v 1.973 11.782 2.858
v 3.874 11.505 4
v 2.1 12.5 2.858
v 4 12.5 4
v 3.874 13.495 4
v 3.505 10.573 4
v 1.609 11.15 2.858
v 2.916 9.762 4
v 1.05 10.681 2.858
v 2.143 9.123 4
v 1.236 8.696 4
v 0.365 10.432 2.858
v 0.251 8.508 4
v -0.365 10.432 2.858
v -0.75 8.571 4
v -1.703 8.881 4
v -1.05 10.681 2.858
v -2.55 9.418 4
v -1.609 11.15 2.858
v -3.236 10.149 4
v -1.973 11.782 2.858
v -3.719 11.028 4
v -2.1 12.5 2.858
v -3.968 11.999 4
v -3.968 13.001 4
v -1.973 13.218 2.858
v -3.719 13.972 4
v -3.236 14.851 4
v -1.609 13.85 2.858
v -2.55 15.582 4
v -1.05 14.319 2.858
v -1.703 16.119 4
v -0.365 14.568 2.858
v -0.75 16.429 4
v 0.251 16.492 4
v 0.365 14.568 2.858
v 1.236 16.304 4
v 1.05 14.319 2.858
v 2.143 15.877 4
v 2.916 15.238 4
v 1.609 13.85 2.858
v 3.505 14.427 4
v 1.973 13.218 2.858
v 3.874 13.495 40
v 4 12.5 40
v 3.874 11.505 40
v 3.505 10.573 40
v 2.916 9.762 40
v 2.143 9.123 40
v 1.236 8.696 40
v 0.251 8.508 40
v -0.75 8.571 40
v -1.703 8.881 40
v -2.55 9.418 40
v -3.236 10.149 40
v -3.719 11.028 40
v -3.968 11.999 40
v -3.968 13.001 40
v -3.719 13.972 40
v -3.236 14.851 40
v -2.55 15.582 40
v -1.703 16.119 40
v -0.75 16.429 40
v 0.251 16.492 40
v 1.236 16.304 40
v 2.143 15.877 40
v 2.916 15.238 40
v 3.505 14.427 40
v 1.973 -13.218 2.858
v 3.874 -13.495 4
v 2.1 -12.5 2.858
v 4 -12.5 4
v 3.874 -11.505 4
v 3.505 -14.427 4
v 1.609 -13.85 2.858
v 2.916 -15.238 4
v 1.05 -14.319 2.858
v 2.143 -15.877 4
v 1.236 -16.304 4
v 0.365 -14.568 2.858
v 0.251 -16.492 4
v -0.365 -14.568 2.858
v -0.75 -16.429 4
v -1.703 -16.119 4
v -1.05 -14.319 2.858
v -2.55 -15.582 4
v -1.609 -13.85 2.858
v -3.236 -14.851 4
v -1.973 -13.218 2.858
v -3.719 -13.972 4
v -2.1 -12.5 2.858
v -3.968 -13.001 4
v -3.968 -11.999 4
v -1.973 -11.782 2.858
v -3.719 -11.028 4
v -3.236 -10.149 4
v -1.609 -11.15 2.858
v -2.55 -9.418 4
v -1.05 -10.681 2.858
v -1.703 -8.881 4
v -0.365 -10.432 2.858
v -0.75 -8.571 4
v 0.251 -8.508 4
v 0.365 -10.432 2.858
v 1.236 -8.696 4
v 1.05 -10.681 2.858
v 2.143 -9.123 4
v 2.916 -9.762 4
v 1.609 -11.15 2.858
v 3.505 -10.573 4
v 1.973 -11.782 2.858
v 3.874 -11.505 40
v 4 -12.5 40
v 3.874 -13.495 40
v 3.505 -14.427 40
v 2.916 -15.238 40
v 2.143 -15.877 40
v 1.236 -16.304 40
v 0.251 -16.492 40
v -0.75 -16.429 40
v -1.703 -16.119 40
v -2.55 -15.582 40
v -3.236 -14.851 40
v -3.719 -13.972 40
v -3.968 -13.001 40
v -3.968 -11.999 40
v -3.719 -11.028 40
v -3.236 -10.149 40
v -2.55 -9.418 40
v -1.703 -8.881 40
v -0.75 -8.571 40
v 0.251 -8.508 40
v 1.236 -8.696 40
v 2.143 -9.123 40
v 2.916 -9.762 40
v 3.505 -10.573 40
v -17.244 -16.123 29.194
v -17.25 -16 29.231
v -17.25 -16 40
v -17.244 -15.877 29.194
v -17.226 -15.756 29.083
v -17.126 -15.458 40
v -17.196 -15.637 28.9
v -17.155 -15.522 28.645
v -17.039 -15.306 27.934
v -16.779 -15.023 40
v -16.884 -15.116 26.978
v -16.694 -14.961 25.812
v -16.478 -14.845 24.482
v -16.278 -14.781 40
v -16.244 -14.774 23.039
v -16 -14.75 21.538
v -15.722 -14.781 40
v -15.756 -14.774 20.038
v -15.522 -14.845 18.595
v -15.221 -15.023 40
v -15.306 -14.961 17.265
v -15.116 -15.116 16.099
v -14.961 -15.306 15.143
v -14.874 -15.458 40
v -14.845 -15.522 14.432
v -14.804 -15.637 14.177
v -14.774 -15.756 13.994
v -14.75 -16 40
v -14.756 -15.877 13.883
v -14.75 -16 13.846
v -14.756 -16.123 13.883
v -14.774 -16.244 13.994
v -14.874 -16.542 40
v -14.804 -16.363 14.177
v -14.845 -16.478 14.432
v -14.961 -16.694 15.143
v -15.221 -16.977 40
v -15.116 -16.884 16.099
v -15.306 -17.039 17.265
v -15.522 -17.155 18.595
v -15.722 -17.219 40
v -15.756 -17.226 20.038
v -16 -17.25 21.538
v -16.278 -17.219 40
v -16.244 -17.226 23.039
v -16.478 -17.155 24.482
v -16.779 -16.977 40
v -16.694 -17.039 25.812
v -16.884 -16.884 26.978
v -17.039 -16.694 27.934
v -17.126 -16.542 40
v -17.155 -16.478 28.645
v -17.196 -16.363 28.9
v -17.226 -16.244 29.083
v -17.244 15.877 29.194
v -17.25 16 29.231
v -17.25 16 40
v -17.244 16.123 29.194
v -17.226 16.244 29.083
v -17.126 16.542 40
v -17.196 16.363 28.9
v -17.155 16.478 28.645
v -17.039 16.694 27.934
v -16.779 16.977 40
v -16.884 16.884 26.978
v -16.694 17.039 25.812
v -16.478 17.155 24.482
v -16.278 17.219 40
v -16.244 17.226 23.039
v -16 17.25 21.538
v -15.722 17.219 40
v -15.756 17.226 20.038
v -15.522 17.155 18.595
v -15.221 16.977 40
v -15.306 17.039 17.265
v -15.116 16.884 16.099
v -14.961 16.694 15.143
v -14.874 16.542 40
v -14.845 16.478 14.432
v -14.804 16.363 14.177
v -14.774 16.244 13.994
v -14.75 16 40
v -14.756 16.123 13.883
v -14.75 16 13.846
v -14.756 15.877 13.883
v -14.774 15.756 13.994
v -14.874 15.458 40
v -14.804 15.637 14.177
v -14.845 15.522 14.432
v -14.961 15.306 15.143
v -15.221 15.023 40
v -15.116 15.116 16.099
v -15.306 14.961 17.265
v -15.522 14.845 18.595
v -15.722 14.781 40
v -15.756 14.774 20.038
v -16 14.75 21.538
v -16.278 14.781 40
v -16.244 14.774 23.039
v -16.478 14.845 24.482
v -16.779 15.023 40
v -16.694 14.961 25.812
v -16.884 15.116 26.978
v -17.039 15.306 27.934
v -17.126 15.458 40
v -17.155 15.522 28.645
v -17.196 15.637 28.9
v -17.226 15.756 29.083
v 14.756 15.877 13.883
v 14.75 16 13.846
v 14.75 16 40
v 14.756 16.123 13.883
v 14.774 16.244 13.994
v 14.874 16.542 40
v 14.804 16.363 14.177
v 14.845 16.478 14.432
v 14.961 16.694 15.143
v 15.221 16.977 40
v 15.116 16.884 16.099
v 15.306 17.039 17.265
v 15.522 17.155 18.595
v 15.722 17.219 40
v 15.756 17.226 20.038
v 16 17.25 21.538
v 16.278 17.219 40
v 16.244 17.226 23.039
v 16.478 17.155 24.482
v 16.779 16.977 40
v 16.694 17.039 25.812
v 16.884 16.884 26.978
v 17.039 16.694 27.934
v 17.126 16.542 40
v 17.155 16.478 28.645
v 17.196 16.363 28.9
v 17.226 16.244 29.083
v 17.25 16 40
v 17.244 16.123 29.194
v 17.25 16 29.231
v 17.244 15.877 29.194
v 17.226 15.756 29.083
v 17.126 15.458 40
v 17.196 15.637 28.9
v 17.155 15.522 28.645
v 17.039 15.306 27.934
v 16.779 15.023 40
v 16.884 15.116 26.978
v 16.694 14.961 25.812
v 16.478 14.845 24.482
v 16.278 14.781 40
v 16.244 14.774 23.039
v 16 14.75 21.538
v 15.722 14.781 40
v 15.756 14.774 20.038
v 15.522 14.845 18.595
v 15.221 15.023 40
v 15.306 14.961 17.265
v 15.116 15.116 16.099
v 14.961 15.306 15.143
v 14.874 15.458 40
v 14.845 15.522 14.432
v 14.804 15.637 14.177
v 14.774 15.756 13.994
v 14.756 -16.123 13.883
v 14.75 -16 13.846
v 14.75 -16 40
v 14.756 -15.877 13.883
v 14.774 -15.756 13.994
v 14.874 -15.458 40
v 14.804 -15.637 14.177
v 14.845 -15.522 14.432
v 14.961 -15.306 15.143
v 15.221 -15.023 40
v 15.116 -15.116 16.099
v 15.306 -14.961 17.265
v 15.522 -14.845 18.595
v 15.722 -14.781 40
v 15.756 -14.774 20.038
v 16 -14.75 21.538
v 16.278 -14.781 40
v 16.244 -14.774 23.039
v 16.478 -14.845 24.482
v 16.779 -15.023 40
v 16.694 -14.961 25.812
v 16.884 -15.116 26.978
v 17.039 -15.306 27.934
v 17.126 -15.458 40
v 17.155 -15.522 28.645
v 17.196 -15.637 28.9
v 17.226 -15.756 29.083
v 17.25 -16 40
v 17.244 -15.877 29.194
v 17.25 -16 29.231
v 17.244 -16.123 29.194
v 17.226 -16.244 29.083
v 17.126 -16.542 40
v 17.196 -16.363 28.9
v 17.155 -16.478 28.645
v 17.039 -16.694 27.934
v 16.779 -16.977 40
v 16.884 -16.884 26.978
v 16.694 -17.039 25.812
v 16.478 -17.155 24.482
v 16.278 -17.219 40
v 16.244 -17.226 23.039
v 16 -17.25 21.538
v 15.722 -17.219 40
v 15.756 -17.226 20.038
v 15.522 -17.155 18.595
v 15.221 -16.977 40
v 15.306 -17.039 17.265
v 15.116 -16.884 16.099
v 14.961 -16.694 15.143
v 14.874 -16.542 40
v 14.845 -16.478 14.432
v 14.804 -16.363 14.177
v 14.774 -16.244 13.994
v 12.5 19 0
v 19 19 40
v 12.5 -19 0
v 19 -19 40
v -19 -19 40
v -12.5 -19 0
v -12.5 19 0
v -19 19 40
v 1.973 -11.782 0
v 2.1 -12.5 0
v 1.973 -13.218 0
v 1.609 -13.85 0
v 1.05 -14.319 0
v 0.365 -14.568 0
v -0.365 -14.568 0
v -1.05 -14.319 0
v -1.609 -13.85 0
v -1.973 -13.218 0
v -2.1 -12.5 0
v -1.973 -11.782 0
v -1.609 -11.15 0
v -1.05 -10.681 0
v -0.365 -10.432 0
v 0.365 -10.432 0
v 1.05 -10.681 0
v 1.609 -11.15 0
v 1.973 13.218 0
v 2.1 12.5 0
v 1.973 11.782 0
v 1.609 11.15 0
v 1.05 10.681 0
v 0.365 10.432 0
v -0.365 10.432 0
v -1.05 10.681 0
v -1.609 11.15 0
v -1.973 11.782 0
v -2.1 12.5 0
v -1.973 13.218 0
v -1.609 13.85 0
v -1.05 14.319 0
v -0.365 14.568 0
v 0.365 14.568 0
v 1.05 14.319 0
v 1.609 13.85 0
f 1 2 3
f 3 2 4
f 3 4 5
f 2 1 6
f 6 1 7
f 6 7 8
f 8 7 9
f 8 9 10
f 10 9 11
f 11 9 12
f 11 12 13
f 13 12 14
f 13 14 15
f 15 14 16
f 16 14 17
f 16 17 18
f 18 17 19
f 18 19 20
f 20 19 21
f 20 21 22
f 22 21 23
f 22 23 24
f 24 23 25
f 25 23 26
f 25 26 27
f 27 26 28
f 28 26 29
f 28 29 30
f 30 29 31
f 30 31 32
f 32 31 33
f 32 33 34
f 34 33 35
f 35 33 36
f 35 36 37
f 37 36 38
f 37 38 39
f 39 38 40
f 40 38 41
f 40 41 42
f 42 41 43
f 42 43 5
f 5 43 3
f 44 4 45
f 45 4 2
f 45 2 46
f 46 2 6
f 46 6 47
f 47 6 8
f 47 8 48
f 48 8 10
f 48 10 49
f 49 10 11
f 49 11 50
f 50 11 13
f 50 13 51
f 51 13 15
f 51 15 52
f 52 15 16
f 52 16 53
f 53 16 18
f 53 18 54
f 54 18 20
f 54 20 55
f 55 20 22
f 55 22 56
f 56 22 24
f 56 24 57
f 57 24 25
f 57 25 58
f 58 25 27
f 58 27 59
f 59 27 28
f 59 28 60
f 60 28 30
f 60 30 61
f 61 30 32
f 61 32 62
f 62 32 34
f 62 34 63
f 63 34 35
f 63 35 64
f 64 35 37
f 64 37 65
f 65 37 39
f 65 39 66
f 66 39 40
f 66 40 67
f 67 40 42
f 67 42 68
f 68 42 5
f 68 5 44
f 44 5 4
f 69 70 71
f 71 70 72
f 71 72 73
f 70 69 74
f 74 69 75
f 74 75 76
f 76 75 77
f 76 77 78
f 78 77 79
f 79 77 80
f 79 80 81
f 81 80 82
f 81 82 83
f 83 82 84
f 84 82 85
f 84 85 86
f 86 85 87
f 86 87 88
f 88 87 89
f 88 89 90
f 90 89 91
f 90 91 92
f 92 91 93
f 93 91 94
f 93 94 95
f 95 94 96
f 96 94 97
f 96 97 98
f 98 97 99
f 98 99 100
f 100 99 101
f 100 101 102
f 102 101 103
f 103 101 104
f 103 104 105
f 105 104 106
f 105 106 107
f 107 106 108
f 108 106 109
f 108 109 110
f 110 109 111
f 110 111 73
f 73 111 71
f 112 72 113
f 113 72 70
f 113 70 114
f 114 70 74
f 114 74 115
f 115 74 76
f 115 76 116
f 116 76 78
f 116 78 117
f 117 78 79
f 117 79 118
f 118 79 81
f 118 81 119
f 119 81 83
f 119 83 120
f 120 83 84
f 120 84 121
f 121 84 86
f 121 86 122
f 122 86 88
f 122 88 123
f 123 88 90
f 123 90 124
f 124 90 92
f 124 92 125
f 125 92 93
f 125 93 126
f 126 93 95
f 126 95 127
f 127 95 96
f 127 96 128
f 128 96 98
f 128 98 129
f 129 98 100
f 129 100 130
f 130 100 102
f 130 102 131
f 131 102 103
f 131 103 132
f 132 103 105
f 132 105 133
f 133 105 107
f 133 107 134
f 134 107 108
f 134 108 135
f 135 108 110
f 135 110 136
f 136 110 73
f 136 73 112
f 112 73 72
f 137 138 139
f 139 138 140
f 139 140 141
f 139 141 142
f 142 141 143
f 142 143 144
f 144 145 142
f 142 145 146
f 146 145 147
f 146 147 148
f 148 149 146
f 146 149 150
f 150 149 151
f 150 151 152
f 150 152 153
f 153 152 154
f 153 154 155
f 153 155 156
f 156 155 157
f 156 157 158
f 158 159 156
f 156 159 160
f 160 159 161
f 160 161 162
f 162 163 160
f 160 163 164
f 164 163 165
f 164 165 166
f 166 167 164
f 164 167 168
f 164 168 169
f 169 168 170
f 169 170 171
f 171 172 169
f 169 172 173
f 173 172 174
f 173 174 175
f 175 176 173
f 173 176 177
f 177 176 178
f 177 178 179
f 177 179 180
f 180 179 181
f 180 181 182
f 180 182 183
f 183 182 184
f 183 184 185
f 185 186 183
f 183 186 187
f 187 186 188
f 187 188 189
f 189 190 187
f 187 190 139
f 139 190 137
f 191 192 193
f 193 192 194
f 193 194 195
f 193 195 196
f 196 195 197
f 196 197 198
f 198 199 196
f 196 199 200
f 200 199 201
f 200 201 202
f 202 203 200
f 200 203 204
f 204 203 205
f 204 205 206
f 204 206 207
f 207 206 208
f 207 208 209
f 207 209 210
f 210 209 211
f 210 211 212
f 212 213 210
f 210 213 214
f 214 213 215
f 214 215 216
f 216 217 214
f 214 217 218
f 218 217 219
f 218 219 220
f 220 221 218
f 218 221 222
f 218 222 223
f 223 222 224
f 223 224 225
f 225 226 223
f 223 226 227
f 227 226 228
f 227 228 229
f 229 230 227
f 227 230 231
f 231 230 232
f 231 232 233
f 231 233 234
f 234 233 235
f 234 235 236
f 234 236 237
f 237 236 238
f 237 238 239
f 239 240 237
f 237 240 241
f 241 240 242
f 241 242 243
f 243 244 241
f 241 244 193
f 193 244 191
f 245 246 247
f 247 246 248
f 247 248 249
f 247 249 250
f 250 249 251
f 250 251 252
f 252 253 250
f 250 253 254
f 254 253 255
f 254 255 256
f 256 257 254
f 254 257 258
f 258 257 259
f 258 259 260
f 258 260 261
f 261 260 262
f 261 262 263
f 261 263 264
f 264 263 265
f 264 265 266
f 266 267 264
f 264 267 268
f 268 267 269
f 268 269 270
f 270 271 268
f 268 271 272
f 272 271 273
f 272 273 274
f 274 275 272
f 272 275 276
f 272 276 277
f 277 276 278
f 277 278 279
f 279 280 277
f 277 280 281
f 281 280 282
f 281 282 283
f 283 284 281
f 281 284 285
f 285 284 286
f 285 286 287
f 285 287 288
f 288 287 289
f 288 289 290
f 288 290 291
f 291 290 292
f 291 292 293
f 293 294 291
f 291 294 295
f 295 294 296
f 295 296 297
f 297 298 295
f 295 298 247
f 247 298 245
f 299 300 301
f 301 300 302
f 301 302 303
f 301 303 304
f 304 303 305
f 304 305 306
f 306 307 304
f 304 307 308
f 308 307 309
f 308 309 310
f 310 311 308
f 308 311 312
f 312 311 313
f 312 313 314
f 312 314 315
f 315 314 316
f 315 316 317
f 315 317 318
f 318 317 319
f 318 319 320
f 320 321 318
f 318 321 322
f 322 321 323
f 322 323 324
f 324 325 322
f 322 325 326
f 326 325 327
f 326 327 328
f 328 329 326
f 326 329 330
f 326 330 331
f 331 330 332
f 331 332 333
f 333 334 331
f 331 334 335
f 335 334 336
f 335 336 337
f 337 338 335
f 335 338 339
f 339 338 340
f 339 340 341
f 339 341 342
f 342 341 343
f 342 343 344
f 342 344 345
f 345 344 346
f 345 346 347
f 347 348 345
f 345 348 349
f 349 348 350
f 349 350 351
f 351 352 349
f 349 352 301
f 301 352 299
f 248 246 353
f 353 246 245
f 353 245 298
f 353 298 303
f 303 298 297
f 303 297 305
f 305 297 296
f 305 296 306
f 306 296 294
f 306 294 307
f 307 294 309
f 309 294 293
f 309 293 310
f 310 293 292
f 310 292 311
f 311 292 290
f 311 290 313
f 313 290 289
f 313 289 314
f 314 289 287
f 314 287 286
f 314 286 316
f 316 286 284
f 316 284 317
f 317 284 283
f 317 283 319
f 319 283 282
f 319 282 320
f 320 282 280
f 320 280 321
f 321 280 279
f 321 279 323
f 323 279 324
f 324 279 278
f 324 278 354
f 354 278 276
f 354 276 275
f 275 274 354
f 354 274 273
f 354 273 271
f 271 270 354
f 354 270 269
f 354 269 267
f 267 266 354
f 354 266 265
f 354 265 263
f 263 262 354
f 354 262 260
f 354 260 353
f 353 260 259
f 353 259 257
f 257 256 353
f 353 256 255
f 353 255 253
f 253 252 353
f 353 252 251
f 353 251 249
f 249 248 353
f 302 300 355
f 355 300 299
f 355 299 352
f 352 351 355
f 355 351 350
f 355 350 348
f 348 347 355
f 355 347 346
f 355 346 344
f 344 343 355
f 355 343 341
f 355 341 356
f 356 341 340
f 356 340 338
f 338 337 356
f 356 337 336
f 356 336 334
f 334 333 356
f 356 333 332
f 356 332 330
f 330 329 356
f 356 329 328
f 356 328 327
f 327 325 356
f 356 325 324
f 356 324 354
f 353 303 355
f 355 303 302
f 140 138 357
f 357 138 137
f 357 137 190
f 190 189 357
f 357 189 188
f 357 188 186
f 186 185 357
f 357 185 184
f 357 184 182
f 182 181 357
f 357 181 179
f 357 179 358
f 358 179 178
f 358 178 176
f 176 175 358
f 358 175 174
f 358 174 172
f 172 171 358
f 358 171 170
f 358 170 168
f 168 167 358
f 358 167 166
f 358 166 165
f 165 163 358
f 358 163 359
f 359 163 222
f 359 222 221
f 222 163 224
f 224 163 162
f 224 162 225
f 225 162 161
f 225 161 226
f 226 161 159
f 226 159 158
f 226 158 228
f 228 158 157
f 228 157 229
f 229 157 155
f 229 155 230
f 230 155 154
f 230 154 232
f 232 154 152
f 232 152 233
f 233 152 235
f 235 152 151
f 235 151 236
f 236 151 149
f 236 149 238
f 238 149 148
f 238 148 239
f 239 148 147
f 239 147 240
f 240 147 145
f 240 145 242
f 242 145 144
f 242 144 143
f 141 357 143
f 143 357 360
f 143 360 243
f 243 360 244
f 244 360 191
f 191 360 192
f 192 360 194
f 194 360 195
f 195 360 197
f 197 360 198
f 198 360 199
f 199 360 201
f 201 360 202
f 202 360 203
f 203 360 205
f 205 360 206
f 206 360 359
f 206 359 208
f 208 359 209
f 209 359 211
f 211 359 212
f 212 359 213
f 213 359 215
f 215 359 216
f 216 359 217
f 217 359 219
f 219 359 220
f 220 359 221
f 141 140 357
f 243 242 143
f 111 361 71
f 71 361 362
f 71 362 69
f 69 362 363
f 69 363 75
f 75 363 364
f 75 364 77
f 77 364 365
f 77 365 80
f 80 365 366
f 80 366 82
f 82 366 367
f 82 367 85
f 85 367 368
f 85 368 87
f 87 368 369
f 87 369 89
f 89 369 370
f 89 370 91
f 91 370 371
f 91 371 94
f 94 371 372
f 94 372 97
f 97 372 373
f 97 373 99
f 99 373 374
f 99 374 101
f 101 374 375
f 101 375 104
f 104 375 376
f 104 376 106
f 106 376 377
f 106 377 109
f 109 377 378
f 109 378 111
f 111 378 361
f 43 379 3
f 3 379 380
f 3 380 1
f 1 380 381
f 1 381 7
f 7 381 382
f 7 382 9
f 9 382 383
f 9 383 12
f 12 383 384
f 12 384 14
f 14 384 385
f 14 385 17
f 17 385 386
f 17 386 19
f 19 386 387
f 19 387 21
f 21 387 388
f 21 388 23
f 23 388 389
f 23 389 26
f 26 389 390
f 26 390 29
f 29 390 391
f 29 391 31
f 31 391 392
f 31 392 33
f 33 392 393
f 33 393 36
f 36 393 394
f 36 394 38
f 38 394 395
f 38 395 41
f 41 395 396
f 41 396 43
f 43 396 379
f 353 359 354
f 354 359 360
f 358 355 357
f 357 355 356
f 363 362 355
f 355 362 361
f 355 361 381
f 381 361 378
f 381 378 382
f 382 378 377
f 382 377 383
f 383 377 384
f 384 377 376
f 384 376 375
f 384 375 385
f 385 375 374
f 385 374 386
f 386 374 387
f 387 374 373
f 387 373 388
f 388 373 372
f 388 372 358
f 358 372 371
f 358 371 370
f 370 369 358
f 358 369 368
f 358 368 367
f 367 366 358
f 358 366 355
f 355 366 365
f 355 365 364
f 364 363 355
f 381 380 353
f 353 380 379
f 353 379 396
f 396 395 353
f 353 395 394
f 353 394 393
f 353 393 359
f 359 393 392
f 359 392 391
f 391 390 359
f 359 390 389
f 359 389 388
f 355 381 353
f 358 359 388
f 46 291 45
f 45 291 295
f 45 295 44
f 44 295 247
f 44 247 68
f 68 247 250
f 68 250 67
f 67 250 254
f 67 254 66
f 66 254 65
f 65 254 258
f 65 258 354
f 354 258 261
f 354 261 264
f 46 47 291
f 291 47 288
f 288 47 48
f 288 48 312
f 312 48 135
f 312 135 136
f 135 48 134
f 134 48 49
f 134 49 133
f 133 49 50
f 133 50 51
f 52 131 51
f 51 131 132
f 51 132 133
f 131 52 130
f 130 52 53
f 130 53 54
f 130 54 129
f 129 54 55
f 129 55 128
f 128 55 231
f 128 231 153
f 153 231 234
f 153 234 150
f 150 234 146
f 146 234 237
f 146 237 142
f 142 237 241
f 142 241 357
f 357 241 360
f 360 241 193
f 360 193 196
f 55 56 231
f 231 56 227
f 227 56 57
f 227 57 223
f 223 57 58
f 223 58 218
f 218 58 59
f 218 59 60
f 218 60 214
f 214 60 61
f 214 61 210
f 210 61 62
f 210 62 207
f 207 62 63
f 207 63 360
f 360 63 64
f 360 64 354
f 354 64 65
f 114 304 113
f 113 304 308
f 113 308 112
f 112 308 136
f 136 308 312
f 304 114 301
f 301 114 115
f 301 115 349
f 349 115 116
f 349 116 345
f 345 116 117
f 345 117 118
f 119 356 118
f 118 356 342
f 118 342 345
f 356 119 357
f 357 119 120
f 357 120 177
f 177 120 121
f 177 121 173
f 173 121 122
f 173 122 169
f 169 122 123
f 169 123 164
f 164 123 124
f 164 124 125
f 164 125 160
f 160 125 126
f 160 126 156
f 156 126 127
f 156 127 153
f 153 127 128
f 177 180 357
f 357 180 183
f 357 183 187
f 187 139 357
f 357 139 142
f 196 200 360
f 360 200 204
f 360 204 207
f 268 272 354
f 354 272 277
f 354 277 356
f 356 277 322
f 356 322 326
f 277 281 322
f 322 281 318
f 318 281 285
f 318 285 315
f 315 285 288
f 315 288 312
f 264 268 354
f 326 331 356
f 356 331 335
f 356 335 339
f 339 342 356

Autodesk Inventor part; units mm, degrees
ref_plane "YZ Plane" through (0, 0, 0) normal (1, 0, 0) x (0, 1, 0)
ref_plane "XZ Plane" through (0, 0, 0) normal (0, 1, 0) x (-1, 0, 0)
ref_plane "XY Plane" through (0, 0, 0) normal (0, 0, 1) x (1, 0, 0)
sketch "Sketch1" plane through (0, 0, 0) normal (0, 0, 1) x (1, 0, 0)
  line L0 (12.5, -19) -> (-12.5, -19)
  line L1 (-12.5, -19) -> (-12.5, 19)
  line L2 (-12.5, 19) -> (12.5, 19)
  line L3 (12.5, 19) -> (12.5, -19)
  line L4 (12.5, -19) -> (-12.5, 19) construction
  line L5 (-12.5, -19) -> (12.5, 19) construction
  circle A0 centre (0, 12.5) radius 2.1
  circle A1 centre (0, -12.5) radius 2.1
  point P0 (0, 0)
  dimension "d0" = 25
  dimension "d1" = 38
  dimension "d2" = 4.2
  dimension "d3" = 4.2
  dimension "d4" = 12.5
  dimension "d5" = 12.5
extrude "Extrusion1" add sketch "Sketch1" along normal blind 40
sketch "Sketch2" plane through (-12.5, 19, 0) normal (0, 1, 0) x (1, 0, 0)
  line L0 (0, 0) -> (0, -40) projected
  line L1 (0, -40) -> (-6.5, -40)
  line L2 (-6.5, -40) -> (0, 0)
  line L3 (0, -40) -> (25, -40) projected
  line L4 (0, 0) -> (0, -40)
  line L5 (25, -40) -> (31.5, -40)
  line L6 (25, 0) -> (25, -40) projected
  line L7 (31.5, -40) -> (25, 0)
  line L8 (25, 0) -> (25, -40)
  point P0 (12.5, 0)
  dimension "d8" = 6.5
  dimension "d9" = 6.5
extrude "Extrusion2" add sketch "Sketch2" against normal up to surface (38 mm away)
sketch "Sketch3" plane through (0, 0, 40) normal (0, 0, 1) x (1, 0, 0)
  line L0 (-5.4088, 0) -> (7.7062, 0)
  line L1 (0, 5.8117) -> (0, -6.6687)
  point P0 (0, 0)
  point P1 (-16, 16)
  point P2 (16, 16)
  point P3 (-16, -16)
  point P4 (16, -16)
  dimension "d12" = 16
  dimension "d13" = 16
  dimension "d16" = 32
  dimension "d19" = 32
hole "Hole1" at (-16, 16, 40) at (16, 16, 40) at (-16, -16, 40) at (16, -16, 40) direction (0, 0, -1) diameter 2.5 end through all
hole "Hole2" at (0, -12.5, 40) direction (0, 0, -1) diameter 8 depth 36 tip angle 118
hole "Hole3" at (0, 12.5, 40) direction (0, 0, -1) diameter 8 depth 36 tip angle 118
properties part number "RDtoRC2-height40mm"
